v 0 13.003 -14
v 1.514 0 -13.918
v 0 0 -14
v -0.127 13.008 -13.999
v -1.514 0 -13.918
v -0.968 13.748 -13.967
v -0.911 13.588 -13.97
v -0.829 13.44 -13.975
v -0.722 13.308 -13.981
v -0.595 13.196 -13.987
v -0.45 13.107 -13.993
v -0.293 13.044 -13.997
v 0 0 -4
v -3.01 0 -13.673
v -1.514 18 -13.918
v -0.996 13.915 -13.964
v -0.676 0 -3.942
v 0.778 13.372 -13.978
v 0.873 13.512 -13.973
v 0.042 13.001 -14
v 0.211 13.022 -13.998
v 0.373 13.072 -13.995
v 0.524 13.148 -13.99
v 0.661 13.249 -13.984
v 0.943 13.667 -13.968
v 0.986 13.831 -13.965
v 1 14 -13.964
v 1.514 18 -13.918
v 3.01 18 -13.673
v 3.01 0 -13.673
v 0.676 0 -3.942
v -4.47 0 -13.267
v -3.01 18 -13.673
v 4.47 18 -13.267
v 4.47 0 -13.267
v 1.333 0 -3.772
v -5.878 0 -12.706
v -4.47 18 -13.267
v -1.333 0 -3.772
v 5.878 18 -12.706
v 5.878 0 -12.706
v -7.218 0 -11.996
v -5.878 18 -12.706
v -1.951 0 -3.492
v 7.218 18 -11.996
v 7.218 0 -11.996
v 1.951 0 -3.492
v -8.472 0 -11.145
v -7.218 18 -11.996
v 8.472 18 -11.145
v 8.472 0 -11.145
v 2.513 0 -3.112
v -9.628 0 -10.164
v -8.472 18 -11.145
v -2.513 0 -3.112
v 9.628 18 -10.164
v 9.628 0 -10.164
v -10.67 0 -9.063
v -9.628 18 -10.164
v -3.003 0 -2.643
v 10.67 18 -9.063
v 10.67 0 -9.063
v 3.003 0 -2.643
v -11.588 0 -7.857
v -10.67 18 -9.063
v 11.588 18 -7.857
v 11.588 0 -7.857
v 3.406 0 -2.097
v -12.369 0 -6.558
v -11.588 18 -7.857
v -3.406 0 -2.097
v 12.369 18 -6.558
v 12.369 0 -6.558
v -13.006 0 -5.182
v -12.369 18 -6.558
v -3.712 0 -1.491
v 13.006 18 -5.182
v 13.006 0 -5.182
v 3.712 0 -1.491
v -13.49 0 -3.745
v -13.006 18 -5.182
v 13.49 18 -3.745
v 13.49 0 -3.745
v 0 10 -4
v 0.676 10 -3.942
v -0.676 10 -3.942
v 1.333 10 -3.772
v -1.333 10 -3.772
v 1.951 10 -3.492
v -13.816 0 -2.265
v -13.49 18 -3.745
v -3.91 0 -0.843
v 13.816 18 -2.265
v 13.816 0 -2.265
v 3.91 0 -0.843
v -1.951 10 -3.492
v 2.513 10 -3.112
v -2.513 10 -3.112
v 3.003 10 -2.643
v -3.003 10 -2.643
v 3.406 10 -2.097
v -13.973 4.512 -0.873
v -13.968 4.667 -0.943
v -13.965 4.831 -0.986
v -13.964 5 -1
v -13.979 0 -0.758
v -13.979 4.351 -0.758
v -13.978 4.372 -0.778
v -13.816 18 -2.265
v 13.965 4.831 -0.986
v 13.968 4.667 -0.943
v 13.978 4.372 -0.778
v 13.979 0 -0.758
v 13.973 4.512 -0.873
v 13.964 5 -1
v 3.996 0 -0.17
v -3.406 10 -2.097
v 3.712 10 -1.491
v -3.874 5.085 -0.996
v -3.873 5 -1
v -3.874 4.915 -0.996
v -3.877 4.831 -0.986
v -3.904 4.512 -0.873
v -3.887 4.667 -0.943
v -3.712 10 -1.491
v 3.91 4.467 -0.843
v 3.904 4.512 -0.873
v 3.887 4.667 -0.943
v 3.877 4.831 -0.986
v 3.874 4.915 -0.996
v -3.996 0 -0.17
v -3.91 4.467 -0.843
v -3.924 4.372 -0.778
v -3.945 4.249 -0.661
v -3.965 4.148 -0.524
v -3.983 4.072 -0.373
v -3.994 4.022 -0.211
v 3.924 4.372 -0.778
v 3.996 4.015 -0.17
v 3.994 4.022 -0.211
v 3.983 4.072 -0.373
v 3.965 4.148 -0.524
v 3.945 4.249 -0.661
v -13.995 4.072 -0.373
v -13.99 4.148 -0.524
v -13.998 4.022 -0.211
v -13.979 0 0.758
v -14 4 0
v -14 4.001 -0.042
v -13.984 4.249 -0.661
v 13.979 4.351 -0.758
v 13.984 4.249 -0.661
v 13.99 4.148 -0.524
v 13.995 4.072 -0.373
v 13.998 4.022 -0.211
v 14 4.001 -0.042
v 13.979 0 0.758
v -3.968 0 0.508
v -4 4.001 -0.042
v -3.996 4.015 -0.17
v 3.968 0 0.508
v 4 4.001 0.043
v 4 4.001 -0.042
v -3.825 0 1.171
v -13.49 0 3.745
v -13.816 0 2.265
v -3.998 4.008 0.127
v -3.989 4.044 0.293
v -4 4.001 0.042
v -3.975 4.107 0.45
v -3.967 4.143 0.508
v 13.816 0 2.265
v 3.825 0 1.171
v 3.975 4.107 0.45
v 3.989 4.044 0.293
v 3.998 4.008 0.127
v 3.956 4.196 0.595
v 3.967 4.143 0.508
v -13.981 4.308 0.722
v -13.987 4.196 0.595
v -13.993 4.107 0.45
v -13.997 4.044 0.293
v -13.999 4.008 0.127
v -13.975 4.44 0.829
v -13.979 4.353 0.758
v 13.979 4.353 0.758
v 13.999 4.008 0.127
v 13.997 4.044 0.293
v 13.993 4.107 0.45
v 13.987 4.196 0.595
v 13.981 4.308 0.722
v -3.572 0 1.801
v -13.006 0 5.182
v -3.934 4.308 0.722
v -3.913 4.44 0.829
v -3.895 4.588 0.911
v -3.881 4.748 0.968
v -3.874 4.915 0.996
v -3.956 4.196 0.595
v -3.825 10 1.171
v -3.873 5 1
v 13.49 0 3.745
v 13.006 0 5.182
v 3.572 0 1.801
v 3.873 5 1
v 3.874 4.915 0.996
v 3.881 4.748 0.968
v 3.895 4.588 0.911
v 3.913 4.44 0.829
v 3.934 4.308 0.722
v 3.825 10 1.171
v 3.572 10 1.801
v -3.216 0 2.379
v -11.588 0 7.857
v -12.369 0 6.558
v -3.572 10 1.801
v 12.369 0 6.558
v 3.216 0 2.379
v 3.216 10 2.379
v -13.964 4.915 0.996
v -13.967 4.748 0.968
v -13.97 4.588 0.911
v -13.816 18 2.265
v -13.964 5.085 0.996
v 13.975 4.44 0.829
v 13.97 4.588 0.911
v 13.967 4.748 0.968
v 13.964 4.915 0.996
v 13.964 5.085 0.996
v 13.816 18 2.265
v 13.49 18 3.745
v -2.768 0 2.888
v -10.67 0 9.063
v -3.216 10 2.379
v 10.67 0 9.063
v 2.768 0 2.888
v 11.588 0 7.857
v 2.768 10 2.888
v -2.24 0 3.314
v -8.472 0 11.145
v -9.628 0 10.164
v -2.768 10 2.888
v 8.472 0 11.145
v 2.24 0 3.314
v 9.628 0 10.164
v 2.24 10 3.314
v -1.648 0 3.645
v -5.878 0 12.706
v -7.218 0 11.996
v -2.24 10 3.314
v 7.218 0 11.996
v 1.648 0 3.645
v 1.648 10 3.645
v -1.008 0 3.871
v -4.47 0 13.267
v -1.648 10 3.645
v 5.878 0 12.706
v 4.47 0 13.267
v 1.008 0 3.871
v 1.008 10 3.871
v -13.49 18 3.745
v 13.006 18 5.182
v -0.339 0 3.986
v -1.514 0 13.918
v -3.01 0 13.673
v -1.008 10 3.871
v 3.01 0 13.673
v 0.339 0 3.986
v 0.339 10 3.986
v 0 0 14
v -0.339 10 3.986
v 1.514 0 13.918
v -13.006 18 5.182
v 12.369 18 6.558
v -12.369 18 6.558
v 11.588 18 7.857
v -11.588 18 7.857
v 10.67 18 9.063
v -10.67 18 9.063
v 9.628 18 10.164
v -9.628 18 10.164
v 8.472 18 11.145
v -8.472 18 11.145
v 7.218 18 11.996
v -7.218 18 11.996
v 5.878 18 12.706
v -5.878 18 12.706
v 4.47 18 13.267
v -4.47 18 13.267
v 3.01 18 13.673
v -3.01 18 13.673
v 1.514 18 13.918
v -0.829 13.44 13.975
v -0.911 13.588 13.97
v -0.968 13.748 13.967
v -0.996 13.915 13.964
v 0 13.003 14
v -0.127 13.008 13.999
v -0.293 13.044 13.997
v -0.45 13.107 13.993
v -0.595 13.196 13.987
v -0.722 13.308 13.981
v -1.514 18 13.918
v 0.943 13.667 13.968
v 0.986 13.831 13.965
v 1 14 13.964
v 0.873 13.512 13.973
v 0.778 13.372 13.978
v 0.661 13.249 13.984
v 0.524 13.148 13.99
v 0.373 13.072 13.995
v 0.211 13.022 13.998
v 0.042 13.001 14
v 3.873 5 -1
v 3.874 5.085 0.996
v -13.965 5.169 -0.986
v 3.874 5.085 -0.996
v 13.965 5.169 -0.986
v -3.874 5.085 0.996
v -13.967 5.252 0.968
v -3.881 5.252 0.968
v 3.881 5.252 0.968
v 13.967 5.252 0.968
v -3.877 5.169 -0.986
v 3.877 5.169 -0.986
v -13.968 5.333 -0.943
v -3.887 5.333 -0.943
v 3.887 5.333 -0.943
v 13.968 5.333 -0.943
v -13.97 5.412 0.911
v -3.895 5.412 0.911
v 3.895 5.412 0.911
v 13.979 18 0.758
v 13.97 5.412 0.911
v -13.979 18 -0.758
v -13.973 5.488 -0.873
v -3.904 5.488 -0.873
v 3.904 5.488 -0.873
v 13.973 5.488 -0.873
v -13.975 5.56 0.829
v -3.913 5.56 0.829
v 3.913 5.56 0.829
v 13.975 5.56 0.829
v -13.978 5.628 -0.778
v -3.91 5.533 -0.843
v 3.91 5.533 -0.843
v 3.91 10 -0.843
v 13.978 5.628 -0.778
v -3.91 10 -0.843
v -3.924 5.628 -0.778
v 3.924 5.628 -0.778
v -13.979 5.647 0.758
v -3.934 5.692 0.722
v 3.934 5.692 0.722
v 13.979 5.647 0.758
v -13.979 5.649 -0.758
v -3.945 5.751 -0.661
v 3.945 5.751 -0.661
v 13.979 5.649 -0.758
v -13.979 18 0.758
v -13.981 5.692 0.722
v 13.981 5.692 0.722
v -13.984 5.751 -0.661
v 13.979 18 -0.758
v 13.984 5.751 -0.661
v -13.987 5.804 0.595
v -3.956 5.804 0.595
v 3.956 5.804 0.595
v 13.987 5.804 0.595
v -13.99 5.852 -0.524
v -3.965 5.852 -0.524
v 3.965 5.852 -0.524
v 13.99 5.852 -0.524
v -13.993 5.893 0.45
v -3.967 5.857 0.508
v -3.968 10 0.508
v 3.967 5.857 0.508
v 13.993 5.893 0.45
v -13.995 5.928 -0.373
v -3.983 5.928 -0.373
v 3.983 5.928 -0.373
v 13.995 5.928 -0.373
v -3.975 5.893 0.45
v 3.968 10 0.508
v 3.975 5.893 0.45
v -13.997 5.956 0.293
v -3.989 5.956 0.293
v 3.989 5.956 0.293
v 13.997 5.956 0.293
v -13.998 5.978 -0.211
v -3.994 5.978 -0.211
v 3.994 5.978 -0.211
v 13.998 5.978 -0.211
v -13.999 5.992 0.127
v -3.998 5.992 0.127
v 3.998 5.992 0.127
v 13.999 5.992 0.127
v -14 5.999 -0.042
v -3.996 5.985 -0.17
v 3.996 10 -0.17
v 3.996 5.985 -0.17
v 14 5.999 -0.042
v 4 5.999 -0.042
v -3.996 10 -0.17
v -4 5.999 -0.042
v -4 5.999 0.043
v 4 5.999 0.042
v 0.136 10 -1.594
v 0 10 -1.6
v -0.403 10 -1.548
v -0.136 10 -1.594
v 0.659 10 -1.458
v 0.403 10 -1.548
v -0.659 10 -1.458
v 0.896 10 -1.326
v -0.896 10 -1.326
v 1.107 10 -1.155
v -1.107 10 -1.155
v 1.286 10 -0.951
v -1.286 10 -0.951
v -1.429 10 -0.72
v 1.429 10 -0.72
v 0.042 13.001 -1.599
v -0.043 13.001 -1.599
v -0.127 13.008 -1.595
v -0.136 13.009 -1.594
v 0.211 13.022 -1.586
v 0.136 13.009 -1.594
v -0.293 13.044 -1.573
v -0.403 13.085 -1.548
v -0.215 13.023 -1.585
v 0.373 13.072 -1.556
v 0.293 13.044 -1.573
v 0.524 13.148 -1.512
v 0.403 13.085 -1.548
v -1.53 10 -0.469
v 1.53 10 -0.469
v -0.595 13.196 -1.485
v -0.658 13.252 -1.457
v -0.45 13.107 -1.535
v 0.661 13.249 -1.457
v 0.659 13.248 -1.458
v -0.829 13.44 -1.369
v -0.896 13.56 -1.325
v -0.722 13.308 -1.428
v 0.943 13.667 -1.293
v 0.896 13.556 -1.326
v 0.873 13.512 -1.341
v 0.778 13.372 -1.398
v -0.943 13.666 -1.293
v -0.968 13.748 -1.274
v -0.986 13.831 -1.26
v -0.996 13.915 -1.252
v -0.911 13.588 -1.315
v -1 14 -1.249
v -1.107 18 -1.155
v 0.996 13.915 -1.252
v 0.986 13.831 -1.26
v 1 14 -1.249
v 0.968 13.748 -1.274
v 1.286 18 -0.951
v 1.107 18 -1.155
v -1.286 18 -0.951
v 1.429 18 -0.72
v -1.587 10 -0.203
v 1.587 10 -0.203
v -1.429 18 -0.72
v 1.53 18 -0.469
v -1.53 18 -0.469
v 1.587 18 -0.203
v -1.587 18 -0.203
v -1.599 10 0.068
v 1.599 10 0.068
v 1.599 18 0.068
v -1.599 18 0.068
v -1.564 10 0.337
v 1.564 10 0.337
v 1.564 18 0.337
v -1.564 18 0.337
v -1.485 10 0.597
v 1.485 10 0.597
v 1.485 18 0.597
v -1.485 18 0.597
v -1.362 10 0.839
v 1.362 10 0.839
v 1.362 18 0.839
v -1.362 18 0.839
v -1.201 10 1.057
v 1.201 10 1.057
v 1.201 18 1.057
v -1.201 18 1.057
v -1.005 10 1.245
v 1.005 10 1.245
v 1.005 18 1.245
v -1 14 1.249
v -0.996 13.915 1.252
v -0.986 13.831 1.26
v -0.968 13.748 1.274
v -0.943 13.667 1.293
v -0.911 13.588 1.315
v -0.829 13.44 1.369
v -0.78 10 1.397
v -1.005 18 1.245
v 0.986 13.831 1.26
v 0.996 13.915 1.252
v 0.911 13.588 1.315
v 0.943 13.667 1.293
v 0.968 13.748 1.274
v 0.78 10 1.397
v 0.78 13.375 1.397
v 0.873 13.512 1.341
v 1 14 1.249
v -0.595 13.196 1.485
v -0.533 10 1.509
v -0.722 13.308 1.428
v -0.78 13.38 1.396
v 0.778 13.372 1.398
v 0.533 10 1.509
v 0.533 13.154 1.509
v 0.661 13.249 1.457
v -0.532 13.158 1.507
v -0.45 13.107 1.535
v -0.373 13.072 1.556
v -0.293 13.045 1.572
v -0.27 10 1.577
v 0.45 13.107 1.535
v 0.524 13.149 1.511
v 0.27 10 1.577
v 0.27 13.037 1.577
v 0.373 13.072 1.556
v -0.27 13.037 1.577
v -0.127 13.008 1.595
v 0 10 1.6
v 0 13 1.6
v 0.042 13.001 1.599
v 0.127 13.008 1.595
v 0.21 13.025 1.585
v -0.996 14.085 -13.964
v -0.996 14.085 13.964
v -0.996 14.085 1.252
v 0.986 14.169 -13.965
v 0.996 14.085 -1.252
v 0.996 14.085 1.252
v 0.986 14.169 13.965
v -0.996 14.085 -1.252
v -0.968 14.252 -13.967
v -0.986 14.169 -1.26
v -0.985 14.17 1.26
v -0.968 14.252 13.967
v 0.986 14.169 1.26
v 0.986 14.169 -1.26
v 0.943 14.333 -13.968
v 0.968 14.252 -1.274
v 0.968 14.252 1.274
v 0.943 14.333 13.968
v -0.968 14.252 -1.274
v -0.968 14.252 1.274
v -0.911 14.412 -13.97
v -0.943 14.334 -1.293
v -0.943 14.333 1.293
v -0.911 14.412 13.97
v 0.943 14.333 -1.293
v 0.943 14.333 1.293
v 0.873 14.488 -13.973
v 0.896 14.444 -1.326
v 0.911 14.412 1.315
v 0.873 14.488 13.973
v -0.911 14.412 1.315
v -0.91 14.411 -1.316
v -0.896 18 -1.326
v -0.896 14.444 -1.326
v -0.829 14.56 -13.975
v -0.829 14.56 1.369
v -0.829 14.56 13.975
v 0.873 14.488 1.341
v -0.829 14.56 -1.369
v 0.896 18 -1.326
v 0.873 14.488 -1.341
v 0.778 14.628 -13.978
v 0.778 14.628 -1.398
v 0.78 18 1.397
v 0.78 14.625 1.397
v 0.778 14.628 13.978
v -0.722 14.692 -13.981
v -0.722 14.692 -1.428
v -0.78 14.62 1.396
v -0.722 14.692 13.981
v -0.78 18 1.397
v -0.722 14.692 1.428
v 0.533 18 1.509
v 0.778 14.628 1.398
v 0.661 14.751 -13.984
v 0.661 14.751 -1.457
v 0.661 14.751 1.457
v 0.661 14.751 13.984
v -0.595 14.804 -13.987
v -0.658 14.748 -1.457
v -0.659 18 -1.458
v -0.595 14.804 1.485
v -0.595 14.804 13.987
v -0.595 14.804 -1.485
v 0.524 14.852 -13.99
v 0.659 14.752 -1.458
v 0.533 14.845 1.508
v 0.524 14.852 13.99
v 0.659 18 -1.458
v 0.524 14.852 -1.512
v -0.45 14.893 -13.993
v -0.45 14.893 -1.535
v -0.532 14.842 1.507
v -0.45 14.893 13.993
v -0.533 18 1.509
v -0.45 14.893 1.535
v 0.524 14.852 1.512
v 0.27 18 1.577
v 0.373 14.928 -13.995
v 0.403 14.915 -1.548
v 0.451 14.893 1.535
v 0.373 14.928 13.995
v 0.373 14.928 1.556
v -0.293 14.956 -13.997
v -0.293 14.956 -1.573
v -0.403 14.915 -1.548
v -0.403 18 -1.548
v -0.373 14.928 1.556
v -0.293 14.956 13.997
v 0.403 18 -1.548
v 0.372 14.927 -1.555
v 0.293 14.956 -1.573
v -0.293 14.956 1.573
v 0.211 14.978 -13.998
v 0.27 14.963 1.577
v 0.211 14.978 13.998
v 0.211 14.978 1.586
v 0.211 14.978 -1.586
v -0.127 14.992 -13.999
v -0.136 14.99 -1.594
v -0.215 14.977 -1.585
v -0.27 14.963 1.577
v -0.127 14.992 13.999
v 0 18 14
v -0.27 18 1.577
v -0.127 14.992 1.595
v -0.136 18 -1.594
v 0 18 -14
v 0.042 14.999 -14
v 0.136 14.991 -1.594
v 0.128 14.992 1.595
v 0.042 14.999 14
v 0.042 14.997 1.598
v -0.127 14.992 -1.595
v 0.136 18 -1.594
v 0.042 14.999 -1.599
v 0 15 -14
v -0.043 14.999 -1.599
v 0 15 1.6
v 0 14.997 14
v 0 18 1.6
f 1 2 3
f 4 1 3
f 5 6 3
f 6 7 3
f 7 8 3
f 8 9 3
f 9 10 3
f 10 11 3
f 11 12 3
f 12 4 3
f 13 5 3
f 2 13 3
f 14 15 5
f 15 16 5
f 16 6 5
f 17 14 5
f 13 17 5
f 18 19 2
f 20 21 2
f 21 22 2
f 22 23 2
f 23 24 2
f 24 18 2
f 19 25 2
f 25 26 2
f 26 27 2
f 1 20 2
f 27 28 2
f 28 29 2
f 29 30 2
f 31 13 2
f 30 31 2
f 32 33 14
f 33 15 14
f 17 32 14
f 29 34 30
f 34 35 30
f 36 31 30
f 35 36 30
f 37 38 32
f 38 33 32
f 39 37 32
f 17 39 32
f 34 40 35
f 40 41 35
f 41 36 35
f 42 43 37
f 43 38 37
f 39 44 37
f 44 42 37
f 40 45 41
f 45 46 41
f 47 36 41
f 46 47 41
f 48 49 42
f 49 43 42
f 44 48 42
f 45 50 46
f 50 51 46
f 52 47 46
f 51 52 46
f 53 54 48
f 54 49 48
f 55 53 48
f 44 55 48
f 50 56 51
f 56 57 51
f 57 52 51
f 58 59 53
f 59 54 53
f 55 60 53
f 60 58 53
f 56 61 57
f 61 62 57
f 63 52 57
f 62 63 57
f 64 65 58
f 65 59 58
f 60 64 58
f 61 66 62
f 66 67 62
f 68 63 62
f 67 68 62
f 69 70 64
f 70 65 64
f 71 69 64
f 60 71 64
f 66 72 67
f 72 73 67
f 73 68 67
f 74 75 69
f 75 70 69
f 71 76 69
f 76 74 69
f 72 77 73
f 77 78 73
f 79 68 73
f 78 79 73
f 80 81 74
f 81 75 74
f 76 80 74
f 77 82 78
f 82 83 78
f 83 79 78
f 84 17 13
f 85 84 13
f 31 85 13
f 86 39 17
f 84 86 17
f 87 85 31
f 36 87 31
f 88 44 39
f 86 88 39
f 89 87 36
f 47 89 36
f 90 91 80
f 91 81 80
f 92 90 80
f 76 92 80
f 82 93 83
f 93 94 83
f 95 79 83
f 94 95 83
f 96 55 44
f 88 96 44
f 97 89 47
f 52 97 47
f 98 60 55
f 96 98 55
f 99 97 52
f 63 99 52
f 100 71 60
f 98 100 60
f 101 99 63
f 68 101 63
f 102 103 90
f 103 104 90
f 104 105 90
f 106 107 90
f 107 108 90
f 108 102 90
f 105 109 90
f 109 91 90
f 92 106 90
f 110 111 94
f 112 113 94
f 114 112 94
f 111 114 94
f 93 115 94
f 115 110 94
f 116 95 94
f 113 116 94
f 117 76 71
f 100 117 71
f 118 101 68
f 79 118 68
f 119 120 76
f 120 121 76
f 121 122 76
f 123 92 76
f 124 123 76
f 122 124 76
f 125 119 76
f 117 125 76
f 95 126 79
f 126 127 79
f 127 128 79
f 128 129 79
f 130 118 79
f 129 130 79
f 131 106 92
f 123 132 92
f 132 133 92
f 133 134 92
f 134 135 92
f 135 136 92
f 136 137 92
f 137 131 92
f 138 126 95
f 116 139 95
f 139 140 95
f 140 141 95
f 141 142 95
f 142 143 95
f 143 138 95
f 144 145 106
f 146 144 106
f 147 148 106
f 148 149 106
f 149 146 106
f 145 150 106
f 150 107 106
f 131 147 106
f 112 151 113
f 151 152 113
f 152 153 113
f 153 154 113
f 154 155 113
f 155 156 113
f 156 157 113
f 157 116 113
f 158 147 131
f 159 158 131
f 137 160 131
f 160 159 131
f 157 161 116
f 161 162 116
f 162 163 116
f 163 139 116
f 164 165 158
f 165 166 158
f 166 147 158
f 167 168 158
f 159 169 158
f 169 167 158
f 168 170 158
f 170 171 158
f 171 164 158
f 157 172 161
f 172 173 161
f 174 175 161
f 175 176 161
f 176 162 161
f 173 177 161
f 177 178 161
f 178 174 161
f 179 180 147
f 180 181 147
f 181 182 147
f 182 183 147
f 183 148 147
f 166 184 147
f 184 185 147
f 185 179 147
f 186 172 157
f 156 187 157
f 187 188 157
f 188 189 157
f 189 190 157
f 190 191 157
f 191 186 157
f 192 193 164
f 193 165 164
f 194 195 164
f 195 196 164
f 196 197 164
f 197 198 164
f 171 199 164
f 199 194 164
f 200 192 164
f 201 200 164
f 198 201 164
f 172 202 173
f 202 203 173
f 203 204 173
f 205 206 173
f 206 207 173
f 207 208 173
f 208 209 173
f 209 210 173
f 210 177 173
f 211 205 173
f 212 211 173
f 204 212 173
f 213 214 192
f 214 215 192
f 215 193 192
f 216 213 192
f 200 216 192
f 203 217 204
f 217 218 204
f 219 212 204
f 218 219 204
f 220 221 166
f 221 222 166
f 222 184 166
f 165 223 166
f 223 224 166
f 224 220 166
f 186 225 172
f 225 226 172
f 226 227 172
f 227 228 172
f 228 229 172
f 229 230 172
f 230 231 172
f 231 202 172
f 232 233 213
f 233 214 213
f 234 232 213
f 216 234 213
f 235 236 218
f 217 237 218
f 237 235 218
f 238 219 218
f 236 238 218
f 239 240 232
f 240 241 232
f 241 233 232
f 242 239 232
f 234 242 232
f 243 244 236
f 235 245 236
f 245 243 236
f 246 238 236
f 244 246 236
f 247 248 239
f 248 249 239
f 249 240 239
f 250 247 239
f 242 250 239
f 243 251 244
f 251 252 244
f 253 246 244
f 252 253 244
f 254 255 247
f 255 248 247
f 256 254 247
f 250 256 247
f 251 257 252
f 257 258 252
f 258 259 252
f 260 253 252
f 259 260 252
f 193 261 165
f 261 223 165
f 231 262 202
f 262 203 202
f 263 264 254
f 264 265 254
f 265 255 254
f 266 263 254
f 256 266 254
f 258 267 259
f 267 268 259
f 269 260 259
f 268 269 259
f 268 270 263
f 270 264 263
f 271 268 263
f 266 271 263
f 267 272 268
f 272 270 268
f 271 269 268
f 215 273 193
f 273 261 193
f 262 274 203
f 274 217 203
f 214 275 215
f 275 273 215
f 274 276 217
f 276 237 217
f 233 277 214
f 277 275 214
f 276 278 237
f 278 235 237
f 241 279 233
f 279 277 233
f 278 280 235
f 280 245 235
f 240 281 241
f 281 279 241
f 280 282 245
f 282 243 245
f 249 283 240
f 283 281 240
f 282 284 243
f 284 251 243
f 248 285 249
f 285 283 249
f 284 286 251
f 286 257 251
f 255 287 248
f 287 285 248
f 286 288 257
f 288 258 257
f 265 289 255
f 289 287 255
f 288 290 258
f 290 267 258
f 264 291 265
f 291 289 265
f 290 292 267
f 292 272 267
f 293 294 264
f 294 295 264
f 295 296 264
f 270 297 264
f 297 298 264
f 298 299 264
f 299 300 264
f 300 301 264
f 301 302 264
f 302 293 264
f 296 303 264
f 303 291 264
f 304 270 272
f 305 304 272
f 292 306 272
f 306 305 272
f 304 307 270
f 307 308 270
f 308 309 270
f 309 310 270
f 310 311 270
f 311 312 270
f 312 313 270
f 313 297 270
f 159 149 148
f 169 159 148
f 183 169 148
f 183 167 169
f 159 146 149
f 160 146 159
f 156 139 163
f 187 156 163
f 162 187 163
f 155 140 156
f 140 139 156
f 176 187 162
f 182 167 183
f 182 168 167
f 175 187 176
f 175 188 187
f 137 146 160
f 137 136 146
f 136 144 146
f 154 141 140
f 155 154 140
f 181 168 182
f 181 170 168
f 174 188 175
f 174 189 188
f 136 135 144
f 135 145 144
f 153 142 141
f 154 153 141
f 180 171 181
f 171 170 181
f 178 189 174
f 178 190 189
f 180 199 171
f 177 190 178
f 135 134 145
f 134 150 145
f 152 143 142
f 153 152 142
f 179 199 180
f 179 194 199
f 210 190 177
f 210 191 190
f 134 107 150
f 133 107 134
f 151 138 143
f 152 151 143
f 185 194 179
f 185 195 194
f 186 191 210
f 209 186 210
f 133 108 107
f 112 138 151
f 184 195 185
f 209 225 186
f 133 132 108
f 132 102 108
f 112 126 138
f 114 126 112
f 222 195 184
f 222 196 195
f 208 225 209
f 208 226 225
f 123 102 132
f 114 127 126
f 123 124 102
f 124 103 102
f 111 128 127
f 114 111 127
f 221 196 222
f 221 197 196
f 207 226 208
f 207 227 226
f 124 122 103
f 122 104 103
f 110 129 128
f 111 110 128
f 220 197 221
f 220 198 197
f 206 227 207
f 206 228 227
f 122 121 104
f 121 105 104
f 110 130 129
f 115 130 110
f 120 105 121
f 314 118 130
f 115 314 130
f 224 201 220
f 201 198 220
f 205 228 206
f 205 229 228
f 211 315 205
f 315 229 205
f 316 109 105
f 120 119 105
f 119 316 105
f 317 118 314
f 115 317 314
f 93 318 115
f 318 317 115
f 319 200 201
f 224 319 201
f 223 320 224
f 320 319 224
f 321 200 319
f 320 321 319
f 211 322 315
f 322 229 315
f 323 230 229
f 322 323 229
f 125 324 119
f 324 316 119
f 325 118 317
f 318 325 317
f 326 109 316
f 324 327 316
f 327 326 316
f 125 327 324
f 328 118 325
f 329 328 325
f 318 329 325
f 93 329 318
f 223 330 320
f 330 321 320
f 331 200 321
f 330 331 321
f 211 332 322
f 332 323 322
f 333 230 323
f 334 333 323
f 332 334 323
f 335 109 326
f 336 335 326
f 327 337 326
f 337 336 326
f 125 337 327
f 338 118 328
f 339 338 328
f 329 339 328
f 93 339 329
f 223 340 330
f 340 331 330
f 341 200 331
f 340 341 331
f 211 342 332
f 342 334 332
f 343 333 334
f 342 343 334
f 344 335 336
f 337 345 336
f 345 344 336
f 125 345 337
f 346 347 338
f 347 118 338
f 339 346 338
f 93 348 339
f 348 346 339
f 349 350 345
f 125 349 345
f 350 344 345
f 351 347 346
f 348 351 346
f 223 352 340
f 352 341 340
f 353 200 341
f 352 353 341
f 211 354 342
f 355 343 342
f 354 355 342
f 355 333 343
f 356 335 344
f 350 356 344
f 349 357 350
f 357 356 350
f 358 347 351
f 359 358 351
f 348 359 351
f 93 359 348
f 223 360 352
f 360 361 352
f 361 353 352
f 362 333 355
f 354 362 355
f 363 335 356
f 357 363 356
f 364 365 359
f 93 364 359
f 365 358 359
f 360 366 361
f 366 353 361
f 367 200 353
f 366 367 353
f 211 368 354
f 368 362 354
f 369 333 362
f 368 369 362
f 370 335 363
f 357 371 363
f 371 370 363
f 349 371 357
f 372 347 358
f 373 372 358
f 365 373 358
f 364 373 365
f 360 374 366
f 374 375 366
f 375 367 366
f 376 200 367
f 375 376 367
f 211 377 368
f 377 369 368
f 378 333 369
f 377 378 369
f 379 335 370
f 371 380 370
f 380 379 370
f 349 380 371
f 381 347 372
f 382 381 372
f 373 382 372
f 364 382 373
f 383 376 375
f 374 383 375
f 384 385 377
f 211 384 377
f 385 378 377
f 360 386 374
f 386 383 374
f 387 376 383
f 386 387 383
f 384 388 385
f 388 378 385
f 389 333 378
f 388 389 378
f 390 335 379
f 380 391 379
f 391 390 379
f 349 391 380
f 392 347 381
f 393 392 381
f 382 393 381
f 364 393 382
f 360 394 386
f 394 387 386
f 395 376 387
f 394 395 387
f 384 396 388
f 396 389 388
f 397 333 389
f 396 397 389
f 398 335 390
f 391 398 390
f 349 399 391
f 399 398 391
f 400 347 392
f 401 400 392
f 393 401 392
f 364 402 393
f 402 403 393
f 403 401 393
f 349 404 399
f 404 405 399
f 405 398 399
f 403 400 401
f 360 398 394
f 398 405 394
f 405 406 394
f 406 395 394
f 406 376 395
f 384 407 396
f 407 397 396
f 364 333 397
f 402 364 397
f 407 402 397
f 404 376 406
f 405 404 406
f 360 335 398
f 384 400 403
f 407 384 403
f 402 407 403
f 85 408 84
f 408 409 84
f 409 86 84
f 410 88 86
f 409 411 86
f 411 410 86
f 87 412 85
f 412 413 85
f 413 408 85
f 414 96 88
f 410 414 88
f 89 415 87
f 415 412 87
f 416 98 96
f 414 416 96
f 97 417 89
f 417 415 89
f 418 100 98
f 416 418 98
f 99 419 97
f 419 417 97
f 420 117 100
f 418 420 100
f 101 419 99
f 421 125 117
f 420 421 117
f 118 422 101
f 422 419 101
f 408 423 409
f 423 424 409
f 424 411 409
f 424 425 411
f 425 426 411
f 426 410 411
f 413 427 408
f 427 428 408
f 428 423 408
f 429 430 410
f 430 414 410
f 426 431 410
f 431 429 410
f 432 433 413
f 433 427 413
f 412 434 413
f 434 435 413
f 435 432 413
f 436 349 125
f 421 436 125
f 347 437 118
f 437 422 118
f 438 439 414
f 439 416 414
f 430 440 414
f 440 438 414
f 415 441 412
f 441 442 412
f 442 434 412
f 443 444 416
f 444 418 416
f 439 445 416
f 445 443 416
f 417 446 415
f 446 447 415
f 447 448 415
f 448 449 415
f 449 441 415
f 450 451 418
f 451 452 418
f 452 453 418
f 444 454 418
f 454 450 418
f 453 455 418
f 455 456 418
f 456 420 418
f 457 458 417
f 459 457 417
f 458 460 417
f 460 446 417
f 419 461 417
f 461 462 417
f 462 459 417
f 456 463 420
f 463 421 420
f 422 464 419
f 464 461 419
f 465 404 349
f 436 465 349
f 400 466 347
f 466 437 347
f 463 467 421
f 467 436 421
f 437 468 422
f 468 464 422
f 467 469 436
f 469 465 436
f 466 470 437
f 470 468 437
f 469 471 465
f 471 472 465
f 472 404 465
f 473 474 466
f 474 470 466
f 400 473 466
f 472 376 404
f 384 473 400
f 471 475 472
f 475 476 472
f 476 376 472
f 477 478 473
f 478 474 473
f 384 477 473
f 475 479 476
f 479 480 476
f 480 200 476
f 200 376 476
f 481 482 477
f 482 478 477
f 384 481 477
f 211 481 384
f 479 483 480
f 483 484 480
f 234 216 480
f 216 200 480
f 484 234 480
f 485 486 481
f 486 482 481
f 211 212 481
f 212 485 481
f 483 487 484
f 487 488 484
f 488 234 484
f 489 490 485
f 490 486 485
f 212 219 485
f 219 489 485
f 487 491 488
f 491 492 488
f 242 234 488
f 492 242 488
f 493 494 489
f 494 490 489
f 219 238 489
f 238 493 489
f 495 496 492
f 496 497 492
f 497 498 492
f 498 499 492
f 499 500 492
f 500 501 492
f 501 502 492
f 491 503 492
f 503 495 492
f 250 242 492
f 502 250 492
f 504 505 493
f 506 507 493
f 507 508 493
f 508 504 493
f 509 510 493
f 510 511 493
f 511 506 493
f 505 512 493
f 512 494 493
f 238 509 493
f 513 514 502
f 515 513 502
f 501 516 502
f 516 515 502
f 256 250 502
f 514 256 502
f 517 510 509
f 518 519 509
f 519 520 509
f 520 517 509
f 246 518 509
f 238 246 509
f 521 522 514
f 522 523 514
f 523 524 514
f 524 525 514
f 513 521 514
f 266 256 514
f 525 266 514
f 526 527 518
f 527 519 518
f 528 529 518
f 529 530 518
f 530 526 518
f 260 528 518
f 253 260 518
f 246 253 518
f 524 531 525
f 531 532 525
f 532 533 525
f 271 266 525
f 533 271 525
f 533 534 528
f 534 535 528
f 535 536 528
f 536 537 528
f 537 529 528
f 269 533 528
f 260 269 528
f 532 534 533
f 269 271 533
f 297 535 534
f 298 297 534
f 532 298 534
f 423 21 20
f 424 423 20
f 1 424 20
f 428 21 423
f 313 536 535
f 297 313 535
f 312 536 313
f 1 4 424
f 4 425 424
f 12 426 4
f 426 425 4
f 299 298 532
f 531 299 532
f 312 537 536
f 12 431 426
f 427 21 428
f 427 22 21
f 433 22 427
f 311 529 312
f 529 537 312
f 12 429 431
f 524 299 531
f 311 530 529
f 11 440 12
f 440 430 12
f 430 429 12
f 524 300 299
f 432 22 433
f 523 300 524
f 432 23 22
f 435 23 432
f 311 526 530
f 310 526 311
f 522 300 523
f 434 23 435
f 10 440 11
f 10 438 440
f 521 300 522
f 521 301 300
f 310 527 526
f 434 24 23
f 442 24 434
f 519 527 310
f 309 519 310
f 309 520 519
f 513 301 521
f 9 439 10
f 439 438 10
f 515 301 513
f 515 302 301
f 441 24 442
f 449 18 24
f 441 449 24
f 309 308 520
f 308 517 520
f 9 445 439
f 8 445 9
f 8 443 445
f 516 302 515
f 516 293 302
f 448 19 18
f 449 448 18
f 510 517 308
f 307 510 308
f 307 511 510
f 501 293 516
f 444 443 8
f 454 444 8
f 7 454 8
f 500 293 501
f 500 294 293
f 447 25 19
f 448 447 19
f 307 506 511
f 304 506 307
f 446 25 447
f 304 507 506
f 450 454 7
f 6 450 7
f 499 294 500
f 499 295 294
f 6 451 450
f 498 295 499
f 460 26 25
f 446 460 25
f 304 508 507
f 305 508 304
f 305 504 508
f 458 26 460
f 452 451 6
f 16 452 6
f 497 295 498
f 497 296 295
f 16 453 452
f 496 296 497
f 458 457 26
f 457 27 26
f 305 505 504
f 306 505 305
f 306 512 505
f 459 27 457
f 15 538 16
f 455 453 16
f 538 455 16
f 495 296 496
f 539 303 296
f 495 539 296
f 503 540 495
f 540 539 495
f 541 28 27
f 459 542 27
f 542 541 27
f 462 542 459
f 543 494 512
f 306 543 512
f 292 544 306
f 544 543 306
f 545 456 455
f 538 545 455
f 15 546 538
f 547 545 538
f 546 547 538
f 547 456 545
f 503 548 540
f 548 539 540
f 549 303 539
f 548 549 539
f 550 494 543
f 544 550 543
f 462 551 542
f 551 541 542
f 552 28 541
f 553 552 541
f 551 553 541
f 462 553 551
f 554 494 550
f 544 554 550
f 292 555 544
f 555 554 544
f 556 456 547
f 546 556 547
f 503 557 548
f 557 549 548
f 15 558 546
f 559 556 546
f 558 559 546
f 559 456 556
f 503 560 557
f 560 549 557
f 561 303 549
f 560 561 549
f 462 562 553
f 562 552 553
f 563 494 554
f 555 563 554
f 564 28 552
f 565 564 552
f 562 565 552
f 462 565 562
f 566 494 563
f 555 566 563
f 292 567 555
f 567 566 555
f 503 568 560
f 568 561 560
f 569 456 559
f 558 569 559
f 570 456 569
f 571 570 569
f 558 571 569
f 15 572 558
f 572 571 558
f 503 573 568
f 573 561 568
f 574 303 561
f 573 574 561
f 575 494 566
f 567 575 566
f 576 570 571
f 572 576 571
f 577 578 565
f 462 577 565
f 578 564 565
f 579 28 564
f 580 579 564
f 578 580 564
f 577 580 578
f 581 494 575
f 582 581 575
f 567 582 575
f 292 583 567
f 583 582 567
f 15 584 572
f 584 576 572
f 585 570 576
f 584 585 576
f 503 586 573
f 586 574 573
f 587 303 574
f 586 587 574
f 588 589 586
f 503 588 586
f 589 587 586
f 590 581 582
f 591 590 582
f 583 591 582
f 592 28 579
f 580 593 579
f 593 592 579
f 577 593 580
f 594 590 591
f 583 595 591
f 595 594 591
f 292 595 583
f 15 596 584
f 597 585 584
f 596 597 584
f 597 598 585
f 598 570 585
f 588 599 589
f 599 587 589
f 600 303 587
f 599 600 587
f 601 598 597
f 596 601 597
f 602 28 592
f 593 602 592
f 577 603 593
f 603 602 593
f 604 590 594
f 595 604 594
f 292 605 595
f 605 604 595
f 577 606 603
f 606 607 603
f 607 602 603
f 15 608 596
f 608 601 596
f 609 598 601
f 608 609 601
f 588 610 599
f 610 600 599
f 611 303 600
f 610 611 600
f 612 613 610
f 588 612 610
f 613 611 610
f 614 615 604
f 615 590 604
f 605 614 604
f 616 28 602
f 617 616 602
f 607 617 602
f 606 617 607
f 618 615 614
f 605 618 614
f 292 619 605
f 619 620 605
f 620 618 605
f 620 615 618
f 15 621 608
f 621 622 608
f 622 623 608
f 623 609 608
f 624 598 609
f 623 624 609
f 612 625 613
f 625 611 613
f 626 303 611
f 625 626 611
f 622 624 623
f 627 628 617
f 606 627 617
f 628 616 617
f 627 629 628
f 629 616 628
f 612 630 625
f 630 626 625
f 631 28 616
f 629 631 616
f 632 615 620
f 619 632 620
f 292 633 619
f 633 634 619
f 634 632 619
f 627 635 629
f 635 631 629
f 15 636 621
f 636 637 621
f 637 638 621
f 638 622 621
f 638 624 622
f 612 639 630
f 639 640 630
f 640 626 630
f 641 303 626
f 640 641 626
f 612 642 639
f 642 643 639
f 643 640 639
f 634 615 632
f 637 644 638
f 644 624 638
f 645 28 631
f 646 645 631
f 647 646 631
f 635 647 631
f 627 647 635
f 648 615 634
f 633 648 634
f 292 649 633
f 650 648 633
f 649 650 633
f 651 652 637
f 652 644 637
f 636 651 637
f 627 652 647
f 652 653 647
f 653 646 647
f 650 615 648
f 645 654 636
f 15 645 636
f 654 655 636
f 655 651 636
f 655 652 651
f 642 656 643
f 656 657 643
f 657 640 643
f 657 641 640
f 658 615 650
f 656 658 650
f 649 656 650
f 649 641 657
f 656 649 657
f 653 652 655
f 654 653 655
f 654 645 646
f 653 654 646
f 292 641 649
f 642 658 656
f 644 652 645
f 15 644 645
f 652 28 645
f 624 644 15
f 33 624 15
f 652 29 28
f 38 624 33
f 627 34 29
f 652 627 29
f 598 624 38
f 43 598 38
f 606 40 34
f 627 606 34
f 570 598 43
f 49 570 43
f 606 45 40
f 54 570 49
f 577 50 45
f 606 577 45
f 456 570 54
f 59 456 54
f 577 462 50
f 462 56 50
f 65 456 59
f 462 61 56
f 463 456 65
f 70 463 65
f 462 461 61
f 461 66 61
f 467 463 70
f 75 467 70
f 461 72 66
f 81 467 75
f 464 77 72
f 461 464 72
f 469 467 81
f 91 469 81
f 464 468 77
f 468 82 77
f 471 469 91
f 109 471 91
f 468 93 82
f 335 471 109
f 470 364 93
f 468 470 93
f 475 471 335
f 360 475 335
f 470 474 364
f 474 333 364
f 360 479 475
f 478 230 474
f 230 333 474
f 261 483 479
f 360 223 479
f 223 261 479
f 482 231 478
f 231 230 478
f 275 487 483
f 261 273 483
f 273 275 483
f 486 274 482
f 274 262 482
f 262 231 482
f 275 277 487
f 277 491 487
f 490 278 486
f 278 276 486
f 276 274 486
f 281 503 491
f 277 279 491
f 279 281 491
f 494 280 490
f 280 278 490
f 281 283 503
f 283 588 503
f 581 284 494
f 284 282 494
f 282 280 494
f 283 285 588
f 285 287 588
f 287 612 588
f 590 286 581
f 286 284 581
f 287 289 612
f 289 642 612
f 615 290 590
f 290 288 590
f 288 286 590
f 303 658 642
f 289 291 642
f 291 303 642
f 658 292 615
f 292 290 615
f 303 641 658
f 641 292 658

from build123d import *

# Parameters (mm, degrees)
SKETCH1_R               = 14
BOSS_EXTRUDE1_DEPTH     = 18
SKETCH2_R               = 1.6
CUT_EXTRUDE1_DEPTH      = 18
SKETCH3_R               = 4
CUT_EXTRUDE2_DEPTH      = 10
CUT_EXTRUDE3_DEPTH      = 27.758176321
CUT_EXTRUDE3_DEPTH_BACK = 27.758176321
SKETCH4_R               = 1
CUT_EXTRUDE4_DEPTH      = 27.758176497
CUT_EXTRUDE4_DEPTH_BACK = 27.758176497
SKETCH5_R               = 1


with BuildPart() as part:
    # Sketch1 → Boss-Extrude1 (new body)
    with BuildSketch(Plane(origin=(0, 0, 0), x_dir=(1, 0, 0), z_dir=(0, 1, 0))):
        with Locations(Location((0, 0, 0), (0, 0, 270))):
            Circle(SKETCH1_R)
    extrude(amount=BOSS_EXTRUDE1_DEPTH)

    # Sketch2 → Cut-Extrude1 (cut)
    with BuildSketch(Plane(origin=(0, 18, 0), x_dir=(1, 0, 0), z_dir=(0, 1, 0))):
        with Locations(Location((0, 0, 0), (0, 0, 270))):
            Circle(SKETCH2_R)
    extrude(amount=-CUT_EXTRUDE1_DEPTH, mode=Mode.SUBTRACT)

    # Sketch3 → Cut-Extrude2 (cut)
    with BuildSketch(Plane.XZ):
        with Locations(Location((0, 0, 0), (0, 0, 270))):
            Circle(SKETCH3_R)
    extrude(amount=-CUT_EXTRUDE2_DEPTH, mode=Mode.SUBTRACT)

    # Sketch4 → Cut-Extrude3 (cut, two sides: drawn at the far end of the back side and taken through both)
    with BuildSketch(Plane(origin=(0, 0, 0), x_dir=(0, 0, -1), z_dir=(1, 0, 0)).offset(-CUT_EXTRUDE3_DEPTH_BACK)):
        with Locations((0, 5)):
            Circle(SKETCH4_R)
    extrude(amount=CUT_EXTRUDE3_DEPTH + CUT_EXTRUDE3_DEPTH_BACK, mode=Mode.SUBTRACT)

    # Sketch5 → Cut-Extrude4 (cut, two sides: drawn at the far end of the back side and taken through both)
    with BuildSketch(Plane.XY.offset(-CUT_EXTRUDE4_DEPTH_BACK)):
        with Locations(Location((0, 14, 0), (0, 0, 269.999999966))):
            Circle(SKETCH5_R)
    extrude(amount=CUT_EXTRUDE4_DEPTH + CUT_EXTRUDE4_DEPTH_BACK, mode=Mode.SUBTRACT)


solid = part.part
